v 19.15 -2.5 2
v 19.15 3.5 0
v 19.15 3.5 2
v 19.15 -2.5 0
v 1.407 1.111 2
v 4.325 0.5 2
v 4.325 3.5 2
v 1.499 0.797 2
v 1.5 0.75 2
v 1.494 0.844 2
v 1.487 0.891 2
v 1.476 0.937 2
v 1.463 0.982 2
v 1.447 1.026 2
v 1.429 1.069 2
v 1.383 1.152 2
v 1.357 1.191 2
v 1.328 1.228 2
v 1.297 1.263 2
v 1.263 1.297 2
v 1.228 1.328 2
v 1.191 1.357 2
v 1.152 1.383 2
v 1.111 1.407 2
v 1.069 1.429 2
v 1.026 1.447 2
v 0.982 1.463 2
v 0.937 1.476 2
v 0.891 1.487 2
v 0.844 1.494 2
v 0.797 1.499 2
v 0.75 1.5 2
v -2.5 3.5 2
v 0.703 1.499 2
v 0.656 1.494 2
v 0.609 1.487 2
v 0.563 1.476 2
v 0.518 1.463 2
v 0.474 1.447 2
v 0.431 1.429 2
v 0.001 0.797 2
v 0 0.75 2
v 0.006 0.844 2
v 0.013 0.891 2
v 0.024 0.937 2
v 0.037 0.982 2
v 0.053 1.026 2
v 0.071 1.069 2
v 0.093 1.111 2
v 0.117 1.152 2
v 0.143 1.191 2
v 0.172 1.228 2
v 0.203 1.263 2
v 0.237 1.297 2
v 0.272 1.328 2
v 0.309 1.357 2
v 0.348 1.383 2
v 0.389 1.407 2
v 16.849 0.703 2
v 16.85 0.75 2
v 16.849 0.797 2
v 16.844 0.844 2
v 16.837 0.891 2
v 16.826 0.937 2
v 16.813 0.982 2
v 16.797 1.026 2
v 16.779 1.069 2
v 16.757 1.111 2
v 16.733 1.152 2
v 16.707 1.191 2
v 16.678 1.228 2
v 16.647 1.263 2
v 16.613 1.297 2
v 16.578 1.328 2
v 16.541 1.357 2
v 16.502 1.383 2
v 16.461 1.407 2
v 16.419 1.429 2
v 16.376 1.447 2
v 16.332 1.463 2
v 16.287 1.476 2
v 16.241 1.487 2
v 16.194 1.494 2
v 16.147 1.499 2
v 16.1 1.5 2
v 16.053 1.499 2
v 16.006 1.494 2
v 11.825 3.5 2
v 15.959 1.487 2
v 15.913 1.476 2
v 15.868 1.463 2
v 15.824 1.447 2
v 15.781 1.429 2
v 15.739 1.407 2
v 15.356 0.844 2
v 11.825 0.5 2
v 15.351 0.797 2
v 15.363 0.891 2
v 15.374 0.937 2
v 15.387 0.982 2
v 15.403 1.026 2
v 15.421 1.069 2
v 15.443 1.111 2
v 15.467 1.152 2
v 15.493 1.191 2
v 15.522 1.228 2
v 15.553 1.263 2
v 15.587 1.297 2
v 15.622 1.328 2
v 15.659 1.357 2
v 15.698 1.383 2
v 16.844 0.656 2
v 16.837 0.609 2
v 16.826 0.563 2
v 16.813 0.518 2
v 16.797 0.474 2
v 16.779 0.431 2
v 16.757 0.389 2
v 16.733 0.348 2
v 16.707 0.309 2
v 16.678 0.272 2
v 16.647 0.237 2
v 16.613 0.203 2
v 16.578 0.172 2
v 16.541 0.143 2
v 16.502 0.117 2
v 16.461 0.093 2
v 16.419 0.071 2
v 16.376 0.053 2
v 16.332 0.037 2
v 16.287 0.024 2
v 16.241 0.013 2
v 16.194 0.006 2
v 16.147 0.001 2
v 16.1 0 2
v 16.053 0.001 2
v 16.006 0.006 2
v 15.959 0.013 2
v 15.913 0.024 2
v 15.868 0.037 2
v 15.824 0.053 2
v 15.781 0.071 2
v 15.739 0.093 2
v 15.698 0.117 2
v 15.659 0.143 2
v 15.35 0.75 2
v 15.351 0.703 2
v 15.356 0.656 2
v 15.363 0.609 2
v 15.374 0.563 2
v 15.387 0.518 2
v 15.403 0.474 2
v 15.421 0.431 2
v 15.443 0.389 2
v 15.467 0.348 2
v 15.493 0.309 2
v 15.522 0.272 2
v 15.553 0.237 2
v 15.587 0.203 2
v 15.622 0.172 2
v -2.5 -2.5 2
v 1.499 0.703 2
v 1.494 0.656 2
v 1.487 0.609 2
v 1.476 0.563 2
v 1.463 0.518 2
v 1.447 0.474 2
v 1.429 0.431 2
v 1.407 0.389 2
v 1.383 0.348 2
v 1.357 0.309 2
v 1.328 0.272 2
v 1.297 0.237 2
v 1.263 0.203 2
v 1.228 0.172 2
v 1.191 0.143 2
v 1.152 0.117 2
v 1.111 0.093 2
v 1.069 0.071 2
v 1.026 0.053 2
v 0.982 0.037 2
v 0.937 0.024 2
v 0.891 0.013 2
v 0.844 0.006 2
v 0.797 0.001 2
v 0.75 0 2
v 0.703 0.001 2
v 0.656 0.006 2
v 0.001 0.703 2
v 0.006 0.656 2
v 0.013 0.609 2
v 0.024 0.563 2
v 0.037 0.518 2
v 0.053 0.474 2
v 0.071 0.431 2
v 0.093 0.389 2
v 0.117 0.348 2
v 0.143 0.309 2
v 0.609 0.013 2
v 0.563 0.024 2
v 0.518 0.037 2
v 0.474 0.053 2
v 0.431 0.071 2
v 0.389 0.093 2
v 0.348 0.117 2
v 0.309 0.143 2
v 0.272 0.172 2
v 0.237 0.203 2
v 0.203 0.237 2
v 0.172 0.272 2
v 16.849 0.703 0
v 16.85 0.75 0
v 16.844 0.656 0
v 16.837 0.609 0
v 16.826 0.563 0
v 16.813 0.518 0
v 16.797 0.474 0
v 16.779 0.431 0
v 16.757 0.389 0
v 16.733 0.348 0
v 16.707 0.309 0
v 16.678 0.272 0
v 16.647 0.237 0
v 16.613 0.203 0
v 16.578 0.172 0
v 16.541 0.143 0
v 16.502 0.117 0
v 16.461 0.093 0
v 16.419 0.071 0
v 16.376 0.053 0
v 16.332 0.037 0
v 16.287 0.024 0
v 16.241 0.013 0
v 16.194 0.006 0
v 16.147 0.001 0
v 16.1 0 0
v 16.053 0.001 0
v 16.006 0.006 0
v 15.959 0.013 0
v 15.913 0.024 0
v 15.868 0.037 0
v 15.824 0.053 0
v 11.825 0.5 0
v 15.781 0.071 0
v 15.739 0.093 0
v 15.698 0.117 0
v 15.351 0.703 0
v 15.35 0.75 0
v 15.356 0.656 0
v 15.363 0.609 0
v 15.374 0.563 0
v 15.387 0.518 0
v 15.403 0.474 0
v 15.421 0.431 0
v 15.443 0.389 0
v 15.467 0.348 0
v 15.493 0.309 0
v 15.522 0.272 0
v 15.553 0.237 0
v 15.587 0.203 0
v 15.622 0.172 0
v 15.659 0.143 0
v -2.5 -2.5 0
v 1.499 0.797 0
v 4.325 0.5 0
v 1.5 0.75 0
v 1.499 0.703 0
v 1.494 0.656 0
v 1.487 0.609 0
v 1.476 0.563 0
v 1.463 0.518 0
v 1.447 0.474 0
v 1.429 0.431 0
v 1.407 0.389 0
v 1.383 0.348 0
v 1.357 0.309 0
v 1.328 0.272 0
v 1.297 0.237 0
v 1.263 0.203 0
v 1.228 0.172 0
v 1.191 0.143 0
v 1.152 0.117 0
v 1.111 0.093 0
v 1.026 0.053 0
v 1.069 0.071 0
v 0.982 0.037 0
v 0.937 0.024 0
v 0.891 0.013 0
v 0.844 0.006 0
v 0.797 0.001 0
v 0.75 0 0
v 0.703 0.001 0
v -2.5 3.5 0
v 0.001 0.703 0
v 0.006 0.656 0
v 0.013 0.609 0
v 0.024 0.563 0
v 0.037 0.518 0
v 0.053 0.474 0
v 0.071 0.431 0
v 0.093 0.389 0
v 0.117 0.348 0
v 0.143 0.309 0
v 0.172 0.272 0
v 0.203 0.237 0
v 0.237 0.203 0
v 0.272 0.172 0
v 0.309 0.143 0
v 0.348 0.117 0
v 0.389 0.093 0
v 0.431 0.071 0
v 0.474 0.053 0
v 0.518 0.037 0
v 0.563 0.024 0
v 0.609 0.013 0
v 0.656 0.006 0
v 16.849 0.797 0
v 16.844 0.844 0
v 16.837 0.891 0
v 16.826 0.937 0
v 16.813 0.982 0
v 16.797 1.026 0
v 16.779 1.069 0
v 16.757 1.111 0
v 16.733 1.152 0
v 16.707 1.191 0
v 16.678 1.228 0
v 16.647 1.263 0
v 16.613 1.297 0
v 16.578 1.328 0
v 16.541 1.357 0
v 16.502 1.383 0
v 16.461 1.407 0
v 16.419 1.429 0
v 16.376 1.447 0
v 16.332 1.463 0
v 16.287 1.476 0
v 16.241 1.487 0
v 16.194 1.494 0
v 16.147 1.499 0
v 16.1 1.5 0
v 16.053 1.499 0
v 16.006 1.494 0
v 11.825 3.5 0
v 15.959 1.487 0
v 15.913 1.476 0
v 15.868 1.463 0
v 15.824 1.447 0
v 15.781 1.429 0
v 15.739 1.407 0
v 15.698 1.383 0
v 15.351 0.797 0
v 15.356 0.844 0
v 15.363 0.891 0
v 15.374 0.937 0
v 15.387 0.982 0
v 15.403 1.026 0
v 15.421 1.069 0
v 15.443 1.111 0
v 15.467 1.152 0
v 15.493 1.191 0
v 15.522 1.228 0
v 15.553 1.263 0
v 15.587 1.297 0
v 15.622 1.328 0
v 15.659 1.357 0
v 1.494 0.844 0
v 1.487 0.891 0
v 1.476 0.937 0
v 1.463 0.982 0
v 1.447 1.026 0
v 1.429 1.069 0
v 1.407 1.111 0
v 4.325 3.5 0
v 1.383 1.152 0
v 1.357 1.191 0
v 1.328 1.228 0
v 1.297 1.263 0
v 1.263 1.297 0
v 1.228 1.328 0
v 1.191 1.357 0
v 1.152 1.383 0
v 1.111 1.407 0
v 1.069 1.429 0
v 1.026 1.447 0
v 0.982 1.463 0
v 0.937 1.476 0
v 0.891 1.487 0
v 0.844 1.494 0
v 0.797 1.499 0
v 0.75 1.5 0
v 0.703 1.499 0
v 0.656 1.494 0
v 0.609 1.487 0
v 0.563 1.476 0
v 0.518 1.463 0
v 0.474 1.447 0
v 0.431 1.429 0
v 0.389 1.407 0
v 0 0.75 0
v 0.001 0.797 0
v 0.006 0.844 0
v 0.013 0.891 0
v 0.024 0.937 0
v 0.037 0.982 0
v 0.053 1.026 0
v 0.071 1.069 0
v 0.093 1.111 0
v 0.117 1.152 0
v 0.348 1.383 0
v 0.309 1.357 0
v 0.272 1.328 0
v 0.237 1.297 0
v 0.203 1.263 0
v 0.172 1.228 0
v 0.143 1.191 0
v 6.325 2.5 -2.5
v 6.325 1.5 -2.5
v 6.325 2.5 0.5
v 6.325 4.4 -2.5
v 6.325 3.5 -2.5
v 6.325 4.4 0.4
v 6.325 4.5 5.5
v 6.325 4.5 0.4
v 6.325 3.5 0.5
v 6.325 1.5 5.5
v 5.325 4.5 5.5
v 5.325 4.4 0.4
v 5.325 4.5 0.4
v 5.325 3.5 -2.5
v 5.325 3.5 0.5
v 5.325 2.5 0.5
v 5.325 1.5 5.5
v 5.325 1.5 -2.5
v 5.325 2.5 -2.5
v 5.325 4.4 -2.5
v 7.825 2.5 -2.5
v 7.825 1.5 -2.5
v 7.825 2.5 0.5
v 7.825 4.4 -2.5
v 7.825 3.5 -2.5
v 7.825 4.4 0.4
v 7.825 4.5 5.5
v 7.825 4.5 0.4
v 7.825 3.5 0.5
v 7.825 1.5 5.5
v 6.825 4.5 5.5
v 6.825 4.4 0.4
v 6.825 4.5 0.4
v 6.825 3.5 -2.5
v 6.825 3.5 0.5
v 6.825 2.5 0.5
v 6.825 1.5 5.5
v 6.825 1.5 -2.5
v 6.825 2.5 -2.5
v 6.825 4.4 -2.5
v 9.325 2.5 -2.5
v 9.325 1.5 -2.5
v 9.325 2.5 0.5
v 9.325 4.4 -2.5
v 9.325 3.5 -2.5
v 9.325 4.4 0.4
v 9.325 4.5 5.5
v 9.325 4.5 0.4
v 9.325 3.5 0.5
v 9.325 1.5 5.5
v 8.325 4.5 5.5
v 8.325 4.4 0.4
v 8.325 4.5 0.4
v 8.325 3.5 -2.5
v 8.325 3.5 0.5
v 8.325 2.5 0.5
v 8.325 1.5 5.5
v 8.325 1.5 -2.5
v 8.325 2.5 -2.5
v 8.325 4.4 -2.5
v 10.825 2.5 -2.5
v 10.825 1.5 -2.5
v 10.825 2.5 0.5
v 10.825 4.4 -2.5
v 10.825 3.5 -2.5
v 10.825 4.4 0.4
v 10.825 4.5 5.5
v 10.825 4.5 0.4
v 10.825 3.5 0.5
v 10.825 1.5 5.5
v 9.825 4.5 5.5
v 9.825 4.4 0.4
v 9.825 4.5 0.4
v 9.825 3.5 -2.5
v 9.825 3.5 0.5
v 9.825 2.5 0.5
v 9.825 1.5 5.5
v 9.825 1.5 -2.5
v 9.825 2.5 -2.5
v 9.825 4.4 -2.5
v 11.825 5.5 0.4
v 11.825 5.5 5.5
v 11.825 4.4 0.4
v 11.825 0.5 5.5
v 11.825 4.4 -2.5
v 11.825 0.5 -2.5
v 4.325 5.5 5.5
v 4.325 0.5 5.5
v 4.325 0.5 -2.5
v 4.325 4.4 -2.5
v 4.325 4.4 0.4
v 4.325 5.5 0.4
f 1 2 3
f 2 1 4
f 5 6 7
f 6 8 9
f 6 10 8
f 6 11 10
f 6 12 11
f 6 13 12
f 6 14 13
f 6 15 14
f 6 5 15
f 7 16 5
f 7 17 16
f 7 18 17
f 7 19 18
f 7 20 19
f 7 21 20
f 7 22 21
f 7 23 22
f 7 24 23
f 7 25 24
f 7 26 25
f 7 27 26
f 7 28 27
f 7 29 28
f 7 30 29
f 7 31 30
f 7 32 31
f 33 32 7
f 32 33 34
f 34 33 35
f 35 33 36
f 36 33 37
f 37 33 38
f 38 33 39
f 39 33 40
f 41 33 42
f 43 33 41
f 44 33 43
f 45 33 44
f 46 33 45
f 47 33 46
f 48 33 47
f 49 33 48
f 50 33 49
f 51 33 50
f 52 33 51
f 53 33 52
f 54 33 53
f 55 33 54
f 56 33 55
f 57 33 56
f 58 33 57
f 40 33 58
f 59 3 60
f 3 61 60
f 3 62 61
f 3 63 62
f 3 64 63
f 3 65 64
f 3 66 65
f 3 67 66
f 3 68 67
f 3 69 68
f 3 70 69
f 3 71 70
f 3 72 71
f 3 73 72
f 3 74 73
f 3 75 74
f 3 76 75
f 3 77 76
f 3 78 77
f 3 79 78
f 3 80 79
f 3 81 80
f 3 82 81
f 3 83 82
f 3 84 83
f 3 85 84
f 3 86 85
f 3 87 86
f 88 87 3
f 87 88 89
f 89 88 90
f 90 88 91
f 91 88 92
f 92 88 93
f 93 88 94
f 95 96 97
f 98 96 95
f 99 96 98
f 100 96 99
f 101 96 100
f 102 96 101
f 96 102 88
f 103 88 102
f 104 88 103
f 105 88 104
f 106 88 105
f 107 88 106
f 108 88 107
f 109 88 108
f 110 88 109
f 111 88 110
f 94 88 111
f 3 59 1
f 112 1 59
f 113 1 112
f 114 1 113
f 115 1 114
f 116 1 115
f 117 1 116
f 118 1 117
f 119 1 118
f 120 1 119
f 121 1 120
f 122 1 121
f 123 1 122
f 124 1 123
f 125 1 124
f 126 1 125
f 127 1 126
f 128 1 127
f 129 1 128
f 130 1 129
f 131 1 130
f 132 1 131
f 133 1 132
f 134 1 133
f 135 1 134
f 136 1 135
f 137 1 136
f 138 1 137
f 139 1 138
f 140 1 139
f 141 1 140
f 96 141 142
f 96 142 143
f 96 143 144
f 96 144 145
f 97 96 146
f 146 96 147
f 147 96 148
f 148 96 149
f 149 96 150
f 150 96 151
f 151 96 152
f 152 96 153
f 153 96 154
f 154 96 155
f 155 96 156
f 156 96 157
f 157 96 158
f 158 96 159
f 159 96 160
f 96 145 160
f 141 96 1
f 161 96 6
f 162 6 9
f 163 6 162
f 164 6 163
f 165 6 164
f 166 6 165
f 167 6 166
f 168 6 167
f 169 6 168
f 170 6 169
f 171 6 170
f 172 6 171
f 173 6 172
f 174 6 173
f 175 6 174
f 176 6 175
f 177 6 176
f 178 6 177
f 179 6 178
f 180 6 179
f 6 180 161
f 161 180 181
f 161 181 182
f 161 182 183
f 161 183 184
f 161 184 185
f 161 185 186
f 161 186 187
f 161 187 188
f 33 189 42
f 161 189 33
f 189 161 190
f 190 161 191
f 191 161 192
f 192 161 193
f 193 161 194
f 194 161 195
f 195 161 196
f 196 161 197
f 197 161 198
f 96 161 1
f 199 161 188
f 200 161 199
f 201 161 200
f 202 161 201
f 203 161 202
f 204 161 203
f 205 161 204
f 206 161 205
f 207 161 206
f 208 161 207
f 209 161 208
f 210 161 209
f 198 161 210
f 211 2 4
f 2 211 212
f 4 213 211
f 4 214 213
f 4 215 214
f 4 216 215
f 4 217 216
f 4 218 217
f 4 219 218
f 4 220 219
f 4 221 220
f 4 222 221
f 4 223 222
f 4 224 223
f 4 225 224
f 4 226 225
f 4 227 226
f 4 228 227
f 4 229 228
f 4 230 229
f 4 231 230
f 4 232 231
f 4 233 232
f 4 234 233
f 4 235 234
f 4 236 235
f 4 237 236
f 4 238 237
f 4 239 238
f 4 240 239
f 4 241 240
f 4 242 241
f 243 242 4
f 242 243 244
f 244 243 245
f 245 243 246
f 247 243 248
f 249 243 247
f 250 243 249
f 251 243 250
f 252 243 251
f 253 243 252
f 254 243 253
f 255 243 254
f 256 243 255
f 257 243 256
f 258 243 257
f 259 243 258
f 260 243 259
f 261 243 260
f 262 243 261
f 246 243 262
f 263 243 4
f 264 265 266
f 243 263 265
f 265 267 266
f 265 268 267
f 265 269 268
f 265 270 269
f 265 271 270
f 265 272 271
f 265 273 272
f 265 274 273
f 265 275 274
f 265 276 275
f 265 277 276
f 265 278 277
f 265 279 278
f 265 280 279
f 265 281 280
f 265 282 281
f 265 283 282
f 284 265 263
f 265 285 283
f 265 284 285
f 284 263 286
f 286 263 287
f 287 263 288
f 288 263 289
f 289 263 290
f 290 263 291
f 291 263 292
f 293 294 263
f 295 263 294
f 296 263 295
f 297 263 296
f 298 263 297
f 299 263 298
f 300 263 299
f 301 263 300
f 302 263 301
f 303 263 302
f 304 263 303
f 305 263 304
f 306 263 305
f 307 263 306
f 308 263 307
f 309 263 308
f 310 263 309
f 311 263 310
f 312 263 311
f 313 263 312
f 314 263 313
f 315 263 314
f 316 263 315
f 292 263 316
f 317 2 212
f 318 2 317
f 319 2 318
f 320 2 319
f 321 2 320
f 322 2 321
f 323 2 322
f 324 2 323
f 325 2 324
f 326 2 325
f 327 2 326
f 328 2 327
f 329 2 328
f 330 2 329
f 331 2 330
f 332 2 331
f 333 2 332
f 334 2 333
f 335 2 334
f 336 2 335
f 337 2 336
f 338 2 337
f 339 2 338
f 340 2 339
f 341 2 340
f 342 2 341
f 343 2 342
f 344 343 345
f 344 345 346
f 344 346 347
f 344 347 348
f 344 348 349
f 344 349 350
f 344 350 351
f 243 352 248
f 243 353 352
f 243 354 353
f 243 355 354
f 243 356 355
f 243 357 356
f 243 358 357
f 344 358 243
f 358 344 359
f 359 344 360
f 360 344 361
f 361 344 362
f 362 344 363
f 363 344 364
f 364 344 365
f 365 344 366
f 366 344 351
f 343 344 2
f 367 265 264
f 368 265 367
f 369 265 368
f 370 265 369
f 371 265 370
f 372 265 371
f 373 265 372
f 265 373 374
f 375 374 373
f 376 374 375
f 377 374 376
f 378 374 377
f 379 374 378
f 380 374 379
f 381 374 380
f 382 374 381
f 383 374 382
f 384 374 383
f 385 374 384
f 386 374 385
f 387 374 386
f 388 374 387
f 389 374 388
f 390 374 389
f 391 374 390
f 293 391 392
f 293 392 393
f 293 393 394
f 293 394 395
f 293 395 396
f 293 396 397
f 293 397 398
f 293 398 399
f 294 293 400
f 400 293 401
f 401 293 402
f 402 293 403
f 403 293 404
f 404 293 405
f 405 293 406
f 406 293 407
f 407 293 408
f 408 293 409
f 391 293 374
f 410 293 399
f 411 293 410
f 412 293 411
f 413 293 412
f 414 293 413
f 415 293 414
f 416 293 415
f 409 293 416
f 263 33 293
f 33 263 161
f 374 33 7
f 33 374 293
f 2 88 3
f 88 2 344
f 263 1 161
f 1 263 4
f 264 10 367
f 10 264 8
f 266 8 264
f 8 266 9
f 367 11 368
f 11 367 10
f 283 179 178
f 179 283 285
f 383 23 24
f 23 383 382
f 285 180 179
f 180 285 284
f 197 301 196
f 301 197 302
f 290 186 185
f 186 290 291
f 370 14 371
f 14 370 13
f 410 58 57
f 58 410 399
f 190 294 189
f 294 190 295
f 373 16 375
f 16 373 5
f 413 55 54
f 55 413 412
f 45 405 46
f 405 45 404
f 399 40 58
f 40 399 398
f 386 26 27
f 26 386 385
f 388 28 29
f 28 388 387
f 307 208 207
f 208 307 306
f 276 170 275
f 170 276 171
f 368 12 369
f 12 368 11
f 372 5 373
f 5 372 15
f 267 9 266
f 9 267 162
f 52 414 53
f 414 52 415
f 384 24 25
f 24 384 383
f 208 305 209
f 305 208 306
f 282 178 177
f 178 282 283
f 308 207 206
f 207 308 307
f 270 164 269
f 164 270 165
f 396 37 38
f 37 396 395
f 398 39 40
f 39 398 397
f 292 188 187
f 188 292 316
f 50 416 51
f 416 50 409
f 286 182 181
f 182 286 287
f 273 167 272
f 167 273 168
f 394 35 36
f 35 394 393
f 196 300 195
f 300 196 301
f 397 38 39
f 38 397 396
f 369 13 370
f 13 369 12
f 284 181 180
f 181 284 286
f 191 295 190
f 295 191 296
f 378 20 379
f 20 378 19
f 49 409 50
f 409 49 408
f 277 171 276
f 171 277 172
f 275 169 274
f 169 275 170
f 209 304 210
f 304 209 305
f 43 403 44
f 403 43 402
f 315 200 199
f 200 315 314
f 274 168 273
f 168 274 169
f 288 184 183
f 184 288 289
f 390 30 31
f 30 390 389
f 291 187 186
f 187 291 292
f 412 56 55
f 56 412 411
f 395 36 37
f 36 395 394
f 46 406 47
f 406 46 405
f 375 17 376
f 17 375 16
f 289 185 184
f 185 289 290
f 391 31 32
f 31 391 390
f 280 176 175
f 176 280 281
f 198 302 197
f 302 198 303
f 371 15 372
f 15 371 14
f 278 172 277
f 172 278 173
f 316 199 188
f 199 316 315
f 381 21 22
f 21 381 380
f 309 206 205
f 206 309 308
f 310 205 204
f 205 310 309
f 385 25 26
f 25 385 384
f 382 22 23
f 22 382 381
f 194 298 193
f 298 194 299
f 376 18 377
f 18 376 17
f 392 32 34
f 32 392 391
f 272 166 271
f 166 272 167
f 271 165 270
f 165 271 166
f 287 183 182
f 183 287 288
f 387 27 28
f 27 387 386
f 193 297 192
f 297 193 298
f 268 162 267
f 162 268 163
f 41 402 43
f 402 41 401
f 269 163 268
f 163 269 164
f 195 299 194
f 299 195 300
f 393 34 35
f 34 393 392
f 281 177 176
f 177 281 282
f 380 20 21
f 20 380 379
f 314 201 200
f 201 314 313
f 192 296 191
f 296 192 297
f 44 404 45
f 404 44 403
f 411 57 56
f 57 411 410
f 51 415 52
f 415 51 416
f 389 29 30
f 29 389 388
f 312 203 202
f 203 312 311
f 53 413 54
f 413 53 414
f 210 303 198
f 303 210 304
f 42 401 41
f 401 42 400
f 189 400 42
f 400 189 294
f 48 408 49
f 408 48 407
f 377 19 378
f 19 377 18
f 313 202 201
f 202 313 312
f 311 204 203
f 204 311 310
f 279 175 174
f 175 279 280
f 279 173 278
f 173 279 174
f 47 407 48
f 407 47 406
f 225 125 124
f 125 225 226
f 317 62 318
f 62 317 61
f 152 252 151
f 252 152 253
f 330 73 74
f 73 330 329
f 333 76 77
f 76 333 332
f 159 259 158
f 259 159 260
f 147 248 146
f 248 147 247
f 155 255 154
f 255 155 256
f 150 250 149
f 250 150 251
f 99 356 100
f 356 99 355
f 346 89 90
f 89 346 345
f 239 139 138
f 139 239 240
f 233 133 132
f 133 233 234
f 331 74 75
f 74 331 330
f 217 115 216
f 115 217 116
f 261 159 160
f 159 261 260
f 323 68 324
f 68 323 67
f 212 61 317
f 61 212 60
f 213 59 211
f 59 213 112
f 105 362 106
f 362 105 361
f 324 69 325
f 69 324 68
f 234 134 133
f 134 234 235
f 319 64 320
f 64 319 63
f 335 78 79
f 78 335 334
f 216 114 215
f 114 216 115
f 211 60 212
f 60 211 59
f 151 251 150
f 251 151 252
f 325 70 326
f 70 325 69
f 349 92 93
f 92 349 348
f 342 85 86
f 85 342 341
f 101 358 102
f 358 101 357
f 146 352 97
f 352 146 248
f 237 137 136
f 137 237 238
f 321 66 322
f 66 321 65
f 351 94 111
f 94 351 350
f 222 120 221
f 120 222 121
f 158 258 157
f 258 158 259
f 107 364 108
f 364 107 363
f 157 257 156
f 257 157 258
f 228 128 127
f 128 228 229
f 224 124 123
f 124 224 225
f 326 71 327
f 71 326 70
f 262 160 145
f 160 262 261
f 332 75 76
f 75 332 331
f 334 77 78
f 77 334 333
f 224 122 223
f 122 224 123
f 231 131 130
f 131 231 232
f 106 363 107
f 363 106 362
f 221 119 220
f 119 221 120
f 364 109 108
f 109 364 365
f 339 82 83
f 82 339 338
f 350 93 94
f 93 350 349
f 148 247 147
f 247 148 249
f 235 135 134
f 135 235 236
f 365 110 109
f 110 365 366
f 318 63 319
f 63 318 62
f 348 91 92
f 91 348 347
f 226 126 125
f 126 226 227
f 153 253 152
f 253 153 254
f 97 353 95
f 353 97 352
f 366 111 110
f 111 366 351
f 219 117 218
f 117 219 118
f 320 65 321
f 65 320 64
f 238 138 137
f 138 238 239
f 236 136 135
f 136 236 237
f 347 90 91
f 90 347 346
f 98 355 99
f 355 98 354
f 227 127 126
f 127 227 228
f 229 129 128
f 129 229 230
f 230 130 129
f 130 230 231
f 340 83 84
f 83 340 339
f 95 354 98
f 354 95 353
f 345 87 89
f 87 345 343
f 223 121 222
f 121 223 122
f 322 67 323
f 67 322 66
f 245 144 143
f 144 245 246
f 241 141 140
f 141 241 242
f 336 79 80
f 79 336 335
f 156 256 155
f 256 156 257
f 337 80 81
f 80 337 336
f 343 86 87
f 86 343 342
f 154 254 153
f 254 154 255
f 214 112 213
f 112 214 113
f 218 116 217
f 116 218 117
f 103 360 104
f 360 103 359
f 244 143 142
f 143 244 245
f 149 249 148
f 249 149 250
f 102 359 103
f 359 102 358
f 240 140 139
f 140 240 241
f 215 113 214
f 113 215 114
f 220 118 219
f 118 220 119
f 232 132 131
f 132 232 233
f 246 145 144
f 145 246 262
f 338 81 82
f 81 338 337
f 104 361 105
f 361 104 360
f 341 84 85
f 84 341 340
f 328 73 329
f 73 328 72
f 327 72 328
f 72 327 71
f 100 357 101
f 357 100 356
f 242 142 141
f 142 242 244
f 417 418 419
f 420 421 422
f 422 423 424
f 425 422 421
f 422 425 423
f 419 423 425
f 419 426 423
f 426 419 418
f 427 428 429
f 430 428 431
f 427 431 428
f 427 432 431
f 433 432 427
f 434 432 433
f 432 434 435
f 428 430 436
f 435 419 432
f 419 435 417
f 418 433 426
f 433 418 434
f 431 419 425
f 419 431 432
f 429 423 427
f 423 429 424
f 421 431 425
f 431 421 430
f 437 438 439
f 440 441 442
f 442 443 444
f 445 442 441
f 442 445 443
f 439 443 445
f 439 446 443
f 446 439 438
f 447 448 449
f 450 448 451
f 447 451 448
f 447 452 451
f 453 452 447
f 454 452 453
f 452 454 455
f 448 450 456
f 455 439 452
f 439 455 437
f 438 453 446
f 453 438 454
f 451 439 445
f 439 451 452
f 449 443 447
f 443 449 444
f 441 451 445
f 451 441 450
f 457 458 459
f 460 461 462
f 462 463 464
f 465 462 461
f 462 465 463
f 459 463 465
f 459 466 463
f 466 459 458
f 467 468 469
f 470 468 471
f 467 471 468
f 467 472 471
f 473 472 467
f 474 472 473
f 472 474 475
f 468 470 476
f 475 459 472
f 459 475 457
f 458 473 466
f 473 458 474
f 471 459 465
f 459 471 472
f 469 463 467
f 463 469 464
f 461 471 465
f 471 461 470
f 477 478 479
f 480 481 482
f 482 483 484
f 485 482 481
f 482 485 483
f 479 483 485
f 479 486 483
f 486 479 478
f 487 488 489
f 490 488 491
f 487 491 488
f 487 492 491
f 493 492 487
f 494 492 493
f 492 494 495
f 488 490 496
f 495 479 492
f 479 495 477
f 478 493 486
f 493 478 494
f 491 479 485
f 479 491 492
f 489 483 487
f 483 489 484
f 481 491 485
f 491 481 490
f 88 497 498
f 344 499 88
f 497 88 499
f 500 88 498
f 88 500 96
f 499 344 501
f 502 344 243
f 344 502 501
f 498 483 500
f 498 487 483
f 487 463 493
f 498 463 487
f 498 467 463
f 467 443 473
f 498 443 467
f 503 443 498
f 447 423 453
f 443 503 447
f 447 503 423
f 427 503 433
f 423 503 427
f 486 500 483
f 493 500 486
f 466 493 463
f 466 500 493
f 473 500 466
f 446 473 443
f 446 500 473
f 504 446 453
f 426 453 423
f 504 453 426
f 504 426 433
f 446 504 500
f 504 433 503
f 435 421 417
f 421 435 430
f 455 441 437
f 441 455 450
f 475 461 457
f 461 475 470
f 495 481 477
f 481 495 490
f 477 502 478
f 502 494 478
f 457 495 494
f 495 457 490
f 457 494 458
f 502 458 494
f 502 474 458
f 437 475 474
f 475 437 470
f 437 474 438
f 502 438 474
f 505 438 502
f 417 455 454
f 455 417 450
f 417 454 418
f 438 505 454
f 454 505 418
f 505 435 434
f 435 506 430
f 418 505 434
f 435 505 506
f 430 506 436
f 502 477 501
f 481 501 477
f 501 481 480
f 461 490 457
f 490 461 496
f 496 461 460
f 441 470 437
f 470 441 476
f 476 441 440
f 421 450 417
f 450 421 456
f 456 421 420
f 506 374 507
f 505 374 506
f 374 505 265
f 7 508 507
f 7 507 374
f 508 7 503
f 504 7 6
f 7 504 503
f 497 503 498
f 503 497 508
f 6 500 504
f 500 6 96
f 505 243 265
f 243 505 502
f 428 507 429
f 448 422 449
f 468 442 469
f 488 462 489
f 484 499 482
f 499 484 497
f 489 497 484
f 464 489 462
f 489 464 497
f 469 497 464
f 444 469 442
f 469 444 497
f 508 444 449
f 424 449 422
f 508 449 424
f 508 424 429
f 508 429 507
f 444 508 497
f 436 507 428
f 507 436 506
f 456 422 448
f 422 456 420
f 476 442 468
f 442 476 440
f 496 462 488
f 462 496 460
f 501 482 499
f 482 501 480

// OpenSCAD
// First attempt
// Jig is too high, and too thick.  wire holes all seem in good placement

module wireHoles()
{
    offset = .25;
    
    for(offset = [.25: 1.5: 1.5 * 3 + .25])
    {
    
        translate([offset,0,-1])
            cube([1, 1, 20]);
        
        translate([offset,0,3])
            cube([1,3,20]);
        
        translate([offset,2,-1])
            cube([1, 1, 20]);
        
        
        echo(str("offset = ", offset));
    }
    
}

module wireBox(box_wall_thick)
{
    //box_wall_thick = 1;
    translate([.25 - box_wall_thick, - box_wall_thick ,0])
        cube([box_wall_thick * 2 + 1.5 * 3 + 1,3 + box_wall_thick * 2, 8]);
}

module rearPartKeepout()
{
    translate([-5, 2.9, -.1])
    cube([20, 10, 3]);
}
  
//bottomCase();

module wire_routing_block()
{
    difference()
    {   
        wireBox(1);
        wireHoles();
        rearPartKeepout();
    }
}

//wire_box();
module drill_hole()
{
    translate([1.5 / 2, 1.5 / 2, -10])
        cylinder(h=30, d = 1.5, center=false);    
}

difference()
{
    hole_distance = 17.5 - 3 + 1.5 - 1.3 / 2;
    translate([-2.5, -2.5, 0])
        cube([hole_distance + 2.5 * 2 + 1.3,  6, 2]);
    
    drill_hole();
    
    translate([hole_distance, 0, 0])
        drill_hole();
    
    translate([5.2 - .125, 1.5, -2.5])
        wireBox(.9);
}

translate([5.2 - .125, 1.5, -2.5])
        wire_routing_block();
$fn=100;
